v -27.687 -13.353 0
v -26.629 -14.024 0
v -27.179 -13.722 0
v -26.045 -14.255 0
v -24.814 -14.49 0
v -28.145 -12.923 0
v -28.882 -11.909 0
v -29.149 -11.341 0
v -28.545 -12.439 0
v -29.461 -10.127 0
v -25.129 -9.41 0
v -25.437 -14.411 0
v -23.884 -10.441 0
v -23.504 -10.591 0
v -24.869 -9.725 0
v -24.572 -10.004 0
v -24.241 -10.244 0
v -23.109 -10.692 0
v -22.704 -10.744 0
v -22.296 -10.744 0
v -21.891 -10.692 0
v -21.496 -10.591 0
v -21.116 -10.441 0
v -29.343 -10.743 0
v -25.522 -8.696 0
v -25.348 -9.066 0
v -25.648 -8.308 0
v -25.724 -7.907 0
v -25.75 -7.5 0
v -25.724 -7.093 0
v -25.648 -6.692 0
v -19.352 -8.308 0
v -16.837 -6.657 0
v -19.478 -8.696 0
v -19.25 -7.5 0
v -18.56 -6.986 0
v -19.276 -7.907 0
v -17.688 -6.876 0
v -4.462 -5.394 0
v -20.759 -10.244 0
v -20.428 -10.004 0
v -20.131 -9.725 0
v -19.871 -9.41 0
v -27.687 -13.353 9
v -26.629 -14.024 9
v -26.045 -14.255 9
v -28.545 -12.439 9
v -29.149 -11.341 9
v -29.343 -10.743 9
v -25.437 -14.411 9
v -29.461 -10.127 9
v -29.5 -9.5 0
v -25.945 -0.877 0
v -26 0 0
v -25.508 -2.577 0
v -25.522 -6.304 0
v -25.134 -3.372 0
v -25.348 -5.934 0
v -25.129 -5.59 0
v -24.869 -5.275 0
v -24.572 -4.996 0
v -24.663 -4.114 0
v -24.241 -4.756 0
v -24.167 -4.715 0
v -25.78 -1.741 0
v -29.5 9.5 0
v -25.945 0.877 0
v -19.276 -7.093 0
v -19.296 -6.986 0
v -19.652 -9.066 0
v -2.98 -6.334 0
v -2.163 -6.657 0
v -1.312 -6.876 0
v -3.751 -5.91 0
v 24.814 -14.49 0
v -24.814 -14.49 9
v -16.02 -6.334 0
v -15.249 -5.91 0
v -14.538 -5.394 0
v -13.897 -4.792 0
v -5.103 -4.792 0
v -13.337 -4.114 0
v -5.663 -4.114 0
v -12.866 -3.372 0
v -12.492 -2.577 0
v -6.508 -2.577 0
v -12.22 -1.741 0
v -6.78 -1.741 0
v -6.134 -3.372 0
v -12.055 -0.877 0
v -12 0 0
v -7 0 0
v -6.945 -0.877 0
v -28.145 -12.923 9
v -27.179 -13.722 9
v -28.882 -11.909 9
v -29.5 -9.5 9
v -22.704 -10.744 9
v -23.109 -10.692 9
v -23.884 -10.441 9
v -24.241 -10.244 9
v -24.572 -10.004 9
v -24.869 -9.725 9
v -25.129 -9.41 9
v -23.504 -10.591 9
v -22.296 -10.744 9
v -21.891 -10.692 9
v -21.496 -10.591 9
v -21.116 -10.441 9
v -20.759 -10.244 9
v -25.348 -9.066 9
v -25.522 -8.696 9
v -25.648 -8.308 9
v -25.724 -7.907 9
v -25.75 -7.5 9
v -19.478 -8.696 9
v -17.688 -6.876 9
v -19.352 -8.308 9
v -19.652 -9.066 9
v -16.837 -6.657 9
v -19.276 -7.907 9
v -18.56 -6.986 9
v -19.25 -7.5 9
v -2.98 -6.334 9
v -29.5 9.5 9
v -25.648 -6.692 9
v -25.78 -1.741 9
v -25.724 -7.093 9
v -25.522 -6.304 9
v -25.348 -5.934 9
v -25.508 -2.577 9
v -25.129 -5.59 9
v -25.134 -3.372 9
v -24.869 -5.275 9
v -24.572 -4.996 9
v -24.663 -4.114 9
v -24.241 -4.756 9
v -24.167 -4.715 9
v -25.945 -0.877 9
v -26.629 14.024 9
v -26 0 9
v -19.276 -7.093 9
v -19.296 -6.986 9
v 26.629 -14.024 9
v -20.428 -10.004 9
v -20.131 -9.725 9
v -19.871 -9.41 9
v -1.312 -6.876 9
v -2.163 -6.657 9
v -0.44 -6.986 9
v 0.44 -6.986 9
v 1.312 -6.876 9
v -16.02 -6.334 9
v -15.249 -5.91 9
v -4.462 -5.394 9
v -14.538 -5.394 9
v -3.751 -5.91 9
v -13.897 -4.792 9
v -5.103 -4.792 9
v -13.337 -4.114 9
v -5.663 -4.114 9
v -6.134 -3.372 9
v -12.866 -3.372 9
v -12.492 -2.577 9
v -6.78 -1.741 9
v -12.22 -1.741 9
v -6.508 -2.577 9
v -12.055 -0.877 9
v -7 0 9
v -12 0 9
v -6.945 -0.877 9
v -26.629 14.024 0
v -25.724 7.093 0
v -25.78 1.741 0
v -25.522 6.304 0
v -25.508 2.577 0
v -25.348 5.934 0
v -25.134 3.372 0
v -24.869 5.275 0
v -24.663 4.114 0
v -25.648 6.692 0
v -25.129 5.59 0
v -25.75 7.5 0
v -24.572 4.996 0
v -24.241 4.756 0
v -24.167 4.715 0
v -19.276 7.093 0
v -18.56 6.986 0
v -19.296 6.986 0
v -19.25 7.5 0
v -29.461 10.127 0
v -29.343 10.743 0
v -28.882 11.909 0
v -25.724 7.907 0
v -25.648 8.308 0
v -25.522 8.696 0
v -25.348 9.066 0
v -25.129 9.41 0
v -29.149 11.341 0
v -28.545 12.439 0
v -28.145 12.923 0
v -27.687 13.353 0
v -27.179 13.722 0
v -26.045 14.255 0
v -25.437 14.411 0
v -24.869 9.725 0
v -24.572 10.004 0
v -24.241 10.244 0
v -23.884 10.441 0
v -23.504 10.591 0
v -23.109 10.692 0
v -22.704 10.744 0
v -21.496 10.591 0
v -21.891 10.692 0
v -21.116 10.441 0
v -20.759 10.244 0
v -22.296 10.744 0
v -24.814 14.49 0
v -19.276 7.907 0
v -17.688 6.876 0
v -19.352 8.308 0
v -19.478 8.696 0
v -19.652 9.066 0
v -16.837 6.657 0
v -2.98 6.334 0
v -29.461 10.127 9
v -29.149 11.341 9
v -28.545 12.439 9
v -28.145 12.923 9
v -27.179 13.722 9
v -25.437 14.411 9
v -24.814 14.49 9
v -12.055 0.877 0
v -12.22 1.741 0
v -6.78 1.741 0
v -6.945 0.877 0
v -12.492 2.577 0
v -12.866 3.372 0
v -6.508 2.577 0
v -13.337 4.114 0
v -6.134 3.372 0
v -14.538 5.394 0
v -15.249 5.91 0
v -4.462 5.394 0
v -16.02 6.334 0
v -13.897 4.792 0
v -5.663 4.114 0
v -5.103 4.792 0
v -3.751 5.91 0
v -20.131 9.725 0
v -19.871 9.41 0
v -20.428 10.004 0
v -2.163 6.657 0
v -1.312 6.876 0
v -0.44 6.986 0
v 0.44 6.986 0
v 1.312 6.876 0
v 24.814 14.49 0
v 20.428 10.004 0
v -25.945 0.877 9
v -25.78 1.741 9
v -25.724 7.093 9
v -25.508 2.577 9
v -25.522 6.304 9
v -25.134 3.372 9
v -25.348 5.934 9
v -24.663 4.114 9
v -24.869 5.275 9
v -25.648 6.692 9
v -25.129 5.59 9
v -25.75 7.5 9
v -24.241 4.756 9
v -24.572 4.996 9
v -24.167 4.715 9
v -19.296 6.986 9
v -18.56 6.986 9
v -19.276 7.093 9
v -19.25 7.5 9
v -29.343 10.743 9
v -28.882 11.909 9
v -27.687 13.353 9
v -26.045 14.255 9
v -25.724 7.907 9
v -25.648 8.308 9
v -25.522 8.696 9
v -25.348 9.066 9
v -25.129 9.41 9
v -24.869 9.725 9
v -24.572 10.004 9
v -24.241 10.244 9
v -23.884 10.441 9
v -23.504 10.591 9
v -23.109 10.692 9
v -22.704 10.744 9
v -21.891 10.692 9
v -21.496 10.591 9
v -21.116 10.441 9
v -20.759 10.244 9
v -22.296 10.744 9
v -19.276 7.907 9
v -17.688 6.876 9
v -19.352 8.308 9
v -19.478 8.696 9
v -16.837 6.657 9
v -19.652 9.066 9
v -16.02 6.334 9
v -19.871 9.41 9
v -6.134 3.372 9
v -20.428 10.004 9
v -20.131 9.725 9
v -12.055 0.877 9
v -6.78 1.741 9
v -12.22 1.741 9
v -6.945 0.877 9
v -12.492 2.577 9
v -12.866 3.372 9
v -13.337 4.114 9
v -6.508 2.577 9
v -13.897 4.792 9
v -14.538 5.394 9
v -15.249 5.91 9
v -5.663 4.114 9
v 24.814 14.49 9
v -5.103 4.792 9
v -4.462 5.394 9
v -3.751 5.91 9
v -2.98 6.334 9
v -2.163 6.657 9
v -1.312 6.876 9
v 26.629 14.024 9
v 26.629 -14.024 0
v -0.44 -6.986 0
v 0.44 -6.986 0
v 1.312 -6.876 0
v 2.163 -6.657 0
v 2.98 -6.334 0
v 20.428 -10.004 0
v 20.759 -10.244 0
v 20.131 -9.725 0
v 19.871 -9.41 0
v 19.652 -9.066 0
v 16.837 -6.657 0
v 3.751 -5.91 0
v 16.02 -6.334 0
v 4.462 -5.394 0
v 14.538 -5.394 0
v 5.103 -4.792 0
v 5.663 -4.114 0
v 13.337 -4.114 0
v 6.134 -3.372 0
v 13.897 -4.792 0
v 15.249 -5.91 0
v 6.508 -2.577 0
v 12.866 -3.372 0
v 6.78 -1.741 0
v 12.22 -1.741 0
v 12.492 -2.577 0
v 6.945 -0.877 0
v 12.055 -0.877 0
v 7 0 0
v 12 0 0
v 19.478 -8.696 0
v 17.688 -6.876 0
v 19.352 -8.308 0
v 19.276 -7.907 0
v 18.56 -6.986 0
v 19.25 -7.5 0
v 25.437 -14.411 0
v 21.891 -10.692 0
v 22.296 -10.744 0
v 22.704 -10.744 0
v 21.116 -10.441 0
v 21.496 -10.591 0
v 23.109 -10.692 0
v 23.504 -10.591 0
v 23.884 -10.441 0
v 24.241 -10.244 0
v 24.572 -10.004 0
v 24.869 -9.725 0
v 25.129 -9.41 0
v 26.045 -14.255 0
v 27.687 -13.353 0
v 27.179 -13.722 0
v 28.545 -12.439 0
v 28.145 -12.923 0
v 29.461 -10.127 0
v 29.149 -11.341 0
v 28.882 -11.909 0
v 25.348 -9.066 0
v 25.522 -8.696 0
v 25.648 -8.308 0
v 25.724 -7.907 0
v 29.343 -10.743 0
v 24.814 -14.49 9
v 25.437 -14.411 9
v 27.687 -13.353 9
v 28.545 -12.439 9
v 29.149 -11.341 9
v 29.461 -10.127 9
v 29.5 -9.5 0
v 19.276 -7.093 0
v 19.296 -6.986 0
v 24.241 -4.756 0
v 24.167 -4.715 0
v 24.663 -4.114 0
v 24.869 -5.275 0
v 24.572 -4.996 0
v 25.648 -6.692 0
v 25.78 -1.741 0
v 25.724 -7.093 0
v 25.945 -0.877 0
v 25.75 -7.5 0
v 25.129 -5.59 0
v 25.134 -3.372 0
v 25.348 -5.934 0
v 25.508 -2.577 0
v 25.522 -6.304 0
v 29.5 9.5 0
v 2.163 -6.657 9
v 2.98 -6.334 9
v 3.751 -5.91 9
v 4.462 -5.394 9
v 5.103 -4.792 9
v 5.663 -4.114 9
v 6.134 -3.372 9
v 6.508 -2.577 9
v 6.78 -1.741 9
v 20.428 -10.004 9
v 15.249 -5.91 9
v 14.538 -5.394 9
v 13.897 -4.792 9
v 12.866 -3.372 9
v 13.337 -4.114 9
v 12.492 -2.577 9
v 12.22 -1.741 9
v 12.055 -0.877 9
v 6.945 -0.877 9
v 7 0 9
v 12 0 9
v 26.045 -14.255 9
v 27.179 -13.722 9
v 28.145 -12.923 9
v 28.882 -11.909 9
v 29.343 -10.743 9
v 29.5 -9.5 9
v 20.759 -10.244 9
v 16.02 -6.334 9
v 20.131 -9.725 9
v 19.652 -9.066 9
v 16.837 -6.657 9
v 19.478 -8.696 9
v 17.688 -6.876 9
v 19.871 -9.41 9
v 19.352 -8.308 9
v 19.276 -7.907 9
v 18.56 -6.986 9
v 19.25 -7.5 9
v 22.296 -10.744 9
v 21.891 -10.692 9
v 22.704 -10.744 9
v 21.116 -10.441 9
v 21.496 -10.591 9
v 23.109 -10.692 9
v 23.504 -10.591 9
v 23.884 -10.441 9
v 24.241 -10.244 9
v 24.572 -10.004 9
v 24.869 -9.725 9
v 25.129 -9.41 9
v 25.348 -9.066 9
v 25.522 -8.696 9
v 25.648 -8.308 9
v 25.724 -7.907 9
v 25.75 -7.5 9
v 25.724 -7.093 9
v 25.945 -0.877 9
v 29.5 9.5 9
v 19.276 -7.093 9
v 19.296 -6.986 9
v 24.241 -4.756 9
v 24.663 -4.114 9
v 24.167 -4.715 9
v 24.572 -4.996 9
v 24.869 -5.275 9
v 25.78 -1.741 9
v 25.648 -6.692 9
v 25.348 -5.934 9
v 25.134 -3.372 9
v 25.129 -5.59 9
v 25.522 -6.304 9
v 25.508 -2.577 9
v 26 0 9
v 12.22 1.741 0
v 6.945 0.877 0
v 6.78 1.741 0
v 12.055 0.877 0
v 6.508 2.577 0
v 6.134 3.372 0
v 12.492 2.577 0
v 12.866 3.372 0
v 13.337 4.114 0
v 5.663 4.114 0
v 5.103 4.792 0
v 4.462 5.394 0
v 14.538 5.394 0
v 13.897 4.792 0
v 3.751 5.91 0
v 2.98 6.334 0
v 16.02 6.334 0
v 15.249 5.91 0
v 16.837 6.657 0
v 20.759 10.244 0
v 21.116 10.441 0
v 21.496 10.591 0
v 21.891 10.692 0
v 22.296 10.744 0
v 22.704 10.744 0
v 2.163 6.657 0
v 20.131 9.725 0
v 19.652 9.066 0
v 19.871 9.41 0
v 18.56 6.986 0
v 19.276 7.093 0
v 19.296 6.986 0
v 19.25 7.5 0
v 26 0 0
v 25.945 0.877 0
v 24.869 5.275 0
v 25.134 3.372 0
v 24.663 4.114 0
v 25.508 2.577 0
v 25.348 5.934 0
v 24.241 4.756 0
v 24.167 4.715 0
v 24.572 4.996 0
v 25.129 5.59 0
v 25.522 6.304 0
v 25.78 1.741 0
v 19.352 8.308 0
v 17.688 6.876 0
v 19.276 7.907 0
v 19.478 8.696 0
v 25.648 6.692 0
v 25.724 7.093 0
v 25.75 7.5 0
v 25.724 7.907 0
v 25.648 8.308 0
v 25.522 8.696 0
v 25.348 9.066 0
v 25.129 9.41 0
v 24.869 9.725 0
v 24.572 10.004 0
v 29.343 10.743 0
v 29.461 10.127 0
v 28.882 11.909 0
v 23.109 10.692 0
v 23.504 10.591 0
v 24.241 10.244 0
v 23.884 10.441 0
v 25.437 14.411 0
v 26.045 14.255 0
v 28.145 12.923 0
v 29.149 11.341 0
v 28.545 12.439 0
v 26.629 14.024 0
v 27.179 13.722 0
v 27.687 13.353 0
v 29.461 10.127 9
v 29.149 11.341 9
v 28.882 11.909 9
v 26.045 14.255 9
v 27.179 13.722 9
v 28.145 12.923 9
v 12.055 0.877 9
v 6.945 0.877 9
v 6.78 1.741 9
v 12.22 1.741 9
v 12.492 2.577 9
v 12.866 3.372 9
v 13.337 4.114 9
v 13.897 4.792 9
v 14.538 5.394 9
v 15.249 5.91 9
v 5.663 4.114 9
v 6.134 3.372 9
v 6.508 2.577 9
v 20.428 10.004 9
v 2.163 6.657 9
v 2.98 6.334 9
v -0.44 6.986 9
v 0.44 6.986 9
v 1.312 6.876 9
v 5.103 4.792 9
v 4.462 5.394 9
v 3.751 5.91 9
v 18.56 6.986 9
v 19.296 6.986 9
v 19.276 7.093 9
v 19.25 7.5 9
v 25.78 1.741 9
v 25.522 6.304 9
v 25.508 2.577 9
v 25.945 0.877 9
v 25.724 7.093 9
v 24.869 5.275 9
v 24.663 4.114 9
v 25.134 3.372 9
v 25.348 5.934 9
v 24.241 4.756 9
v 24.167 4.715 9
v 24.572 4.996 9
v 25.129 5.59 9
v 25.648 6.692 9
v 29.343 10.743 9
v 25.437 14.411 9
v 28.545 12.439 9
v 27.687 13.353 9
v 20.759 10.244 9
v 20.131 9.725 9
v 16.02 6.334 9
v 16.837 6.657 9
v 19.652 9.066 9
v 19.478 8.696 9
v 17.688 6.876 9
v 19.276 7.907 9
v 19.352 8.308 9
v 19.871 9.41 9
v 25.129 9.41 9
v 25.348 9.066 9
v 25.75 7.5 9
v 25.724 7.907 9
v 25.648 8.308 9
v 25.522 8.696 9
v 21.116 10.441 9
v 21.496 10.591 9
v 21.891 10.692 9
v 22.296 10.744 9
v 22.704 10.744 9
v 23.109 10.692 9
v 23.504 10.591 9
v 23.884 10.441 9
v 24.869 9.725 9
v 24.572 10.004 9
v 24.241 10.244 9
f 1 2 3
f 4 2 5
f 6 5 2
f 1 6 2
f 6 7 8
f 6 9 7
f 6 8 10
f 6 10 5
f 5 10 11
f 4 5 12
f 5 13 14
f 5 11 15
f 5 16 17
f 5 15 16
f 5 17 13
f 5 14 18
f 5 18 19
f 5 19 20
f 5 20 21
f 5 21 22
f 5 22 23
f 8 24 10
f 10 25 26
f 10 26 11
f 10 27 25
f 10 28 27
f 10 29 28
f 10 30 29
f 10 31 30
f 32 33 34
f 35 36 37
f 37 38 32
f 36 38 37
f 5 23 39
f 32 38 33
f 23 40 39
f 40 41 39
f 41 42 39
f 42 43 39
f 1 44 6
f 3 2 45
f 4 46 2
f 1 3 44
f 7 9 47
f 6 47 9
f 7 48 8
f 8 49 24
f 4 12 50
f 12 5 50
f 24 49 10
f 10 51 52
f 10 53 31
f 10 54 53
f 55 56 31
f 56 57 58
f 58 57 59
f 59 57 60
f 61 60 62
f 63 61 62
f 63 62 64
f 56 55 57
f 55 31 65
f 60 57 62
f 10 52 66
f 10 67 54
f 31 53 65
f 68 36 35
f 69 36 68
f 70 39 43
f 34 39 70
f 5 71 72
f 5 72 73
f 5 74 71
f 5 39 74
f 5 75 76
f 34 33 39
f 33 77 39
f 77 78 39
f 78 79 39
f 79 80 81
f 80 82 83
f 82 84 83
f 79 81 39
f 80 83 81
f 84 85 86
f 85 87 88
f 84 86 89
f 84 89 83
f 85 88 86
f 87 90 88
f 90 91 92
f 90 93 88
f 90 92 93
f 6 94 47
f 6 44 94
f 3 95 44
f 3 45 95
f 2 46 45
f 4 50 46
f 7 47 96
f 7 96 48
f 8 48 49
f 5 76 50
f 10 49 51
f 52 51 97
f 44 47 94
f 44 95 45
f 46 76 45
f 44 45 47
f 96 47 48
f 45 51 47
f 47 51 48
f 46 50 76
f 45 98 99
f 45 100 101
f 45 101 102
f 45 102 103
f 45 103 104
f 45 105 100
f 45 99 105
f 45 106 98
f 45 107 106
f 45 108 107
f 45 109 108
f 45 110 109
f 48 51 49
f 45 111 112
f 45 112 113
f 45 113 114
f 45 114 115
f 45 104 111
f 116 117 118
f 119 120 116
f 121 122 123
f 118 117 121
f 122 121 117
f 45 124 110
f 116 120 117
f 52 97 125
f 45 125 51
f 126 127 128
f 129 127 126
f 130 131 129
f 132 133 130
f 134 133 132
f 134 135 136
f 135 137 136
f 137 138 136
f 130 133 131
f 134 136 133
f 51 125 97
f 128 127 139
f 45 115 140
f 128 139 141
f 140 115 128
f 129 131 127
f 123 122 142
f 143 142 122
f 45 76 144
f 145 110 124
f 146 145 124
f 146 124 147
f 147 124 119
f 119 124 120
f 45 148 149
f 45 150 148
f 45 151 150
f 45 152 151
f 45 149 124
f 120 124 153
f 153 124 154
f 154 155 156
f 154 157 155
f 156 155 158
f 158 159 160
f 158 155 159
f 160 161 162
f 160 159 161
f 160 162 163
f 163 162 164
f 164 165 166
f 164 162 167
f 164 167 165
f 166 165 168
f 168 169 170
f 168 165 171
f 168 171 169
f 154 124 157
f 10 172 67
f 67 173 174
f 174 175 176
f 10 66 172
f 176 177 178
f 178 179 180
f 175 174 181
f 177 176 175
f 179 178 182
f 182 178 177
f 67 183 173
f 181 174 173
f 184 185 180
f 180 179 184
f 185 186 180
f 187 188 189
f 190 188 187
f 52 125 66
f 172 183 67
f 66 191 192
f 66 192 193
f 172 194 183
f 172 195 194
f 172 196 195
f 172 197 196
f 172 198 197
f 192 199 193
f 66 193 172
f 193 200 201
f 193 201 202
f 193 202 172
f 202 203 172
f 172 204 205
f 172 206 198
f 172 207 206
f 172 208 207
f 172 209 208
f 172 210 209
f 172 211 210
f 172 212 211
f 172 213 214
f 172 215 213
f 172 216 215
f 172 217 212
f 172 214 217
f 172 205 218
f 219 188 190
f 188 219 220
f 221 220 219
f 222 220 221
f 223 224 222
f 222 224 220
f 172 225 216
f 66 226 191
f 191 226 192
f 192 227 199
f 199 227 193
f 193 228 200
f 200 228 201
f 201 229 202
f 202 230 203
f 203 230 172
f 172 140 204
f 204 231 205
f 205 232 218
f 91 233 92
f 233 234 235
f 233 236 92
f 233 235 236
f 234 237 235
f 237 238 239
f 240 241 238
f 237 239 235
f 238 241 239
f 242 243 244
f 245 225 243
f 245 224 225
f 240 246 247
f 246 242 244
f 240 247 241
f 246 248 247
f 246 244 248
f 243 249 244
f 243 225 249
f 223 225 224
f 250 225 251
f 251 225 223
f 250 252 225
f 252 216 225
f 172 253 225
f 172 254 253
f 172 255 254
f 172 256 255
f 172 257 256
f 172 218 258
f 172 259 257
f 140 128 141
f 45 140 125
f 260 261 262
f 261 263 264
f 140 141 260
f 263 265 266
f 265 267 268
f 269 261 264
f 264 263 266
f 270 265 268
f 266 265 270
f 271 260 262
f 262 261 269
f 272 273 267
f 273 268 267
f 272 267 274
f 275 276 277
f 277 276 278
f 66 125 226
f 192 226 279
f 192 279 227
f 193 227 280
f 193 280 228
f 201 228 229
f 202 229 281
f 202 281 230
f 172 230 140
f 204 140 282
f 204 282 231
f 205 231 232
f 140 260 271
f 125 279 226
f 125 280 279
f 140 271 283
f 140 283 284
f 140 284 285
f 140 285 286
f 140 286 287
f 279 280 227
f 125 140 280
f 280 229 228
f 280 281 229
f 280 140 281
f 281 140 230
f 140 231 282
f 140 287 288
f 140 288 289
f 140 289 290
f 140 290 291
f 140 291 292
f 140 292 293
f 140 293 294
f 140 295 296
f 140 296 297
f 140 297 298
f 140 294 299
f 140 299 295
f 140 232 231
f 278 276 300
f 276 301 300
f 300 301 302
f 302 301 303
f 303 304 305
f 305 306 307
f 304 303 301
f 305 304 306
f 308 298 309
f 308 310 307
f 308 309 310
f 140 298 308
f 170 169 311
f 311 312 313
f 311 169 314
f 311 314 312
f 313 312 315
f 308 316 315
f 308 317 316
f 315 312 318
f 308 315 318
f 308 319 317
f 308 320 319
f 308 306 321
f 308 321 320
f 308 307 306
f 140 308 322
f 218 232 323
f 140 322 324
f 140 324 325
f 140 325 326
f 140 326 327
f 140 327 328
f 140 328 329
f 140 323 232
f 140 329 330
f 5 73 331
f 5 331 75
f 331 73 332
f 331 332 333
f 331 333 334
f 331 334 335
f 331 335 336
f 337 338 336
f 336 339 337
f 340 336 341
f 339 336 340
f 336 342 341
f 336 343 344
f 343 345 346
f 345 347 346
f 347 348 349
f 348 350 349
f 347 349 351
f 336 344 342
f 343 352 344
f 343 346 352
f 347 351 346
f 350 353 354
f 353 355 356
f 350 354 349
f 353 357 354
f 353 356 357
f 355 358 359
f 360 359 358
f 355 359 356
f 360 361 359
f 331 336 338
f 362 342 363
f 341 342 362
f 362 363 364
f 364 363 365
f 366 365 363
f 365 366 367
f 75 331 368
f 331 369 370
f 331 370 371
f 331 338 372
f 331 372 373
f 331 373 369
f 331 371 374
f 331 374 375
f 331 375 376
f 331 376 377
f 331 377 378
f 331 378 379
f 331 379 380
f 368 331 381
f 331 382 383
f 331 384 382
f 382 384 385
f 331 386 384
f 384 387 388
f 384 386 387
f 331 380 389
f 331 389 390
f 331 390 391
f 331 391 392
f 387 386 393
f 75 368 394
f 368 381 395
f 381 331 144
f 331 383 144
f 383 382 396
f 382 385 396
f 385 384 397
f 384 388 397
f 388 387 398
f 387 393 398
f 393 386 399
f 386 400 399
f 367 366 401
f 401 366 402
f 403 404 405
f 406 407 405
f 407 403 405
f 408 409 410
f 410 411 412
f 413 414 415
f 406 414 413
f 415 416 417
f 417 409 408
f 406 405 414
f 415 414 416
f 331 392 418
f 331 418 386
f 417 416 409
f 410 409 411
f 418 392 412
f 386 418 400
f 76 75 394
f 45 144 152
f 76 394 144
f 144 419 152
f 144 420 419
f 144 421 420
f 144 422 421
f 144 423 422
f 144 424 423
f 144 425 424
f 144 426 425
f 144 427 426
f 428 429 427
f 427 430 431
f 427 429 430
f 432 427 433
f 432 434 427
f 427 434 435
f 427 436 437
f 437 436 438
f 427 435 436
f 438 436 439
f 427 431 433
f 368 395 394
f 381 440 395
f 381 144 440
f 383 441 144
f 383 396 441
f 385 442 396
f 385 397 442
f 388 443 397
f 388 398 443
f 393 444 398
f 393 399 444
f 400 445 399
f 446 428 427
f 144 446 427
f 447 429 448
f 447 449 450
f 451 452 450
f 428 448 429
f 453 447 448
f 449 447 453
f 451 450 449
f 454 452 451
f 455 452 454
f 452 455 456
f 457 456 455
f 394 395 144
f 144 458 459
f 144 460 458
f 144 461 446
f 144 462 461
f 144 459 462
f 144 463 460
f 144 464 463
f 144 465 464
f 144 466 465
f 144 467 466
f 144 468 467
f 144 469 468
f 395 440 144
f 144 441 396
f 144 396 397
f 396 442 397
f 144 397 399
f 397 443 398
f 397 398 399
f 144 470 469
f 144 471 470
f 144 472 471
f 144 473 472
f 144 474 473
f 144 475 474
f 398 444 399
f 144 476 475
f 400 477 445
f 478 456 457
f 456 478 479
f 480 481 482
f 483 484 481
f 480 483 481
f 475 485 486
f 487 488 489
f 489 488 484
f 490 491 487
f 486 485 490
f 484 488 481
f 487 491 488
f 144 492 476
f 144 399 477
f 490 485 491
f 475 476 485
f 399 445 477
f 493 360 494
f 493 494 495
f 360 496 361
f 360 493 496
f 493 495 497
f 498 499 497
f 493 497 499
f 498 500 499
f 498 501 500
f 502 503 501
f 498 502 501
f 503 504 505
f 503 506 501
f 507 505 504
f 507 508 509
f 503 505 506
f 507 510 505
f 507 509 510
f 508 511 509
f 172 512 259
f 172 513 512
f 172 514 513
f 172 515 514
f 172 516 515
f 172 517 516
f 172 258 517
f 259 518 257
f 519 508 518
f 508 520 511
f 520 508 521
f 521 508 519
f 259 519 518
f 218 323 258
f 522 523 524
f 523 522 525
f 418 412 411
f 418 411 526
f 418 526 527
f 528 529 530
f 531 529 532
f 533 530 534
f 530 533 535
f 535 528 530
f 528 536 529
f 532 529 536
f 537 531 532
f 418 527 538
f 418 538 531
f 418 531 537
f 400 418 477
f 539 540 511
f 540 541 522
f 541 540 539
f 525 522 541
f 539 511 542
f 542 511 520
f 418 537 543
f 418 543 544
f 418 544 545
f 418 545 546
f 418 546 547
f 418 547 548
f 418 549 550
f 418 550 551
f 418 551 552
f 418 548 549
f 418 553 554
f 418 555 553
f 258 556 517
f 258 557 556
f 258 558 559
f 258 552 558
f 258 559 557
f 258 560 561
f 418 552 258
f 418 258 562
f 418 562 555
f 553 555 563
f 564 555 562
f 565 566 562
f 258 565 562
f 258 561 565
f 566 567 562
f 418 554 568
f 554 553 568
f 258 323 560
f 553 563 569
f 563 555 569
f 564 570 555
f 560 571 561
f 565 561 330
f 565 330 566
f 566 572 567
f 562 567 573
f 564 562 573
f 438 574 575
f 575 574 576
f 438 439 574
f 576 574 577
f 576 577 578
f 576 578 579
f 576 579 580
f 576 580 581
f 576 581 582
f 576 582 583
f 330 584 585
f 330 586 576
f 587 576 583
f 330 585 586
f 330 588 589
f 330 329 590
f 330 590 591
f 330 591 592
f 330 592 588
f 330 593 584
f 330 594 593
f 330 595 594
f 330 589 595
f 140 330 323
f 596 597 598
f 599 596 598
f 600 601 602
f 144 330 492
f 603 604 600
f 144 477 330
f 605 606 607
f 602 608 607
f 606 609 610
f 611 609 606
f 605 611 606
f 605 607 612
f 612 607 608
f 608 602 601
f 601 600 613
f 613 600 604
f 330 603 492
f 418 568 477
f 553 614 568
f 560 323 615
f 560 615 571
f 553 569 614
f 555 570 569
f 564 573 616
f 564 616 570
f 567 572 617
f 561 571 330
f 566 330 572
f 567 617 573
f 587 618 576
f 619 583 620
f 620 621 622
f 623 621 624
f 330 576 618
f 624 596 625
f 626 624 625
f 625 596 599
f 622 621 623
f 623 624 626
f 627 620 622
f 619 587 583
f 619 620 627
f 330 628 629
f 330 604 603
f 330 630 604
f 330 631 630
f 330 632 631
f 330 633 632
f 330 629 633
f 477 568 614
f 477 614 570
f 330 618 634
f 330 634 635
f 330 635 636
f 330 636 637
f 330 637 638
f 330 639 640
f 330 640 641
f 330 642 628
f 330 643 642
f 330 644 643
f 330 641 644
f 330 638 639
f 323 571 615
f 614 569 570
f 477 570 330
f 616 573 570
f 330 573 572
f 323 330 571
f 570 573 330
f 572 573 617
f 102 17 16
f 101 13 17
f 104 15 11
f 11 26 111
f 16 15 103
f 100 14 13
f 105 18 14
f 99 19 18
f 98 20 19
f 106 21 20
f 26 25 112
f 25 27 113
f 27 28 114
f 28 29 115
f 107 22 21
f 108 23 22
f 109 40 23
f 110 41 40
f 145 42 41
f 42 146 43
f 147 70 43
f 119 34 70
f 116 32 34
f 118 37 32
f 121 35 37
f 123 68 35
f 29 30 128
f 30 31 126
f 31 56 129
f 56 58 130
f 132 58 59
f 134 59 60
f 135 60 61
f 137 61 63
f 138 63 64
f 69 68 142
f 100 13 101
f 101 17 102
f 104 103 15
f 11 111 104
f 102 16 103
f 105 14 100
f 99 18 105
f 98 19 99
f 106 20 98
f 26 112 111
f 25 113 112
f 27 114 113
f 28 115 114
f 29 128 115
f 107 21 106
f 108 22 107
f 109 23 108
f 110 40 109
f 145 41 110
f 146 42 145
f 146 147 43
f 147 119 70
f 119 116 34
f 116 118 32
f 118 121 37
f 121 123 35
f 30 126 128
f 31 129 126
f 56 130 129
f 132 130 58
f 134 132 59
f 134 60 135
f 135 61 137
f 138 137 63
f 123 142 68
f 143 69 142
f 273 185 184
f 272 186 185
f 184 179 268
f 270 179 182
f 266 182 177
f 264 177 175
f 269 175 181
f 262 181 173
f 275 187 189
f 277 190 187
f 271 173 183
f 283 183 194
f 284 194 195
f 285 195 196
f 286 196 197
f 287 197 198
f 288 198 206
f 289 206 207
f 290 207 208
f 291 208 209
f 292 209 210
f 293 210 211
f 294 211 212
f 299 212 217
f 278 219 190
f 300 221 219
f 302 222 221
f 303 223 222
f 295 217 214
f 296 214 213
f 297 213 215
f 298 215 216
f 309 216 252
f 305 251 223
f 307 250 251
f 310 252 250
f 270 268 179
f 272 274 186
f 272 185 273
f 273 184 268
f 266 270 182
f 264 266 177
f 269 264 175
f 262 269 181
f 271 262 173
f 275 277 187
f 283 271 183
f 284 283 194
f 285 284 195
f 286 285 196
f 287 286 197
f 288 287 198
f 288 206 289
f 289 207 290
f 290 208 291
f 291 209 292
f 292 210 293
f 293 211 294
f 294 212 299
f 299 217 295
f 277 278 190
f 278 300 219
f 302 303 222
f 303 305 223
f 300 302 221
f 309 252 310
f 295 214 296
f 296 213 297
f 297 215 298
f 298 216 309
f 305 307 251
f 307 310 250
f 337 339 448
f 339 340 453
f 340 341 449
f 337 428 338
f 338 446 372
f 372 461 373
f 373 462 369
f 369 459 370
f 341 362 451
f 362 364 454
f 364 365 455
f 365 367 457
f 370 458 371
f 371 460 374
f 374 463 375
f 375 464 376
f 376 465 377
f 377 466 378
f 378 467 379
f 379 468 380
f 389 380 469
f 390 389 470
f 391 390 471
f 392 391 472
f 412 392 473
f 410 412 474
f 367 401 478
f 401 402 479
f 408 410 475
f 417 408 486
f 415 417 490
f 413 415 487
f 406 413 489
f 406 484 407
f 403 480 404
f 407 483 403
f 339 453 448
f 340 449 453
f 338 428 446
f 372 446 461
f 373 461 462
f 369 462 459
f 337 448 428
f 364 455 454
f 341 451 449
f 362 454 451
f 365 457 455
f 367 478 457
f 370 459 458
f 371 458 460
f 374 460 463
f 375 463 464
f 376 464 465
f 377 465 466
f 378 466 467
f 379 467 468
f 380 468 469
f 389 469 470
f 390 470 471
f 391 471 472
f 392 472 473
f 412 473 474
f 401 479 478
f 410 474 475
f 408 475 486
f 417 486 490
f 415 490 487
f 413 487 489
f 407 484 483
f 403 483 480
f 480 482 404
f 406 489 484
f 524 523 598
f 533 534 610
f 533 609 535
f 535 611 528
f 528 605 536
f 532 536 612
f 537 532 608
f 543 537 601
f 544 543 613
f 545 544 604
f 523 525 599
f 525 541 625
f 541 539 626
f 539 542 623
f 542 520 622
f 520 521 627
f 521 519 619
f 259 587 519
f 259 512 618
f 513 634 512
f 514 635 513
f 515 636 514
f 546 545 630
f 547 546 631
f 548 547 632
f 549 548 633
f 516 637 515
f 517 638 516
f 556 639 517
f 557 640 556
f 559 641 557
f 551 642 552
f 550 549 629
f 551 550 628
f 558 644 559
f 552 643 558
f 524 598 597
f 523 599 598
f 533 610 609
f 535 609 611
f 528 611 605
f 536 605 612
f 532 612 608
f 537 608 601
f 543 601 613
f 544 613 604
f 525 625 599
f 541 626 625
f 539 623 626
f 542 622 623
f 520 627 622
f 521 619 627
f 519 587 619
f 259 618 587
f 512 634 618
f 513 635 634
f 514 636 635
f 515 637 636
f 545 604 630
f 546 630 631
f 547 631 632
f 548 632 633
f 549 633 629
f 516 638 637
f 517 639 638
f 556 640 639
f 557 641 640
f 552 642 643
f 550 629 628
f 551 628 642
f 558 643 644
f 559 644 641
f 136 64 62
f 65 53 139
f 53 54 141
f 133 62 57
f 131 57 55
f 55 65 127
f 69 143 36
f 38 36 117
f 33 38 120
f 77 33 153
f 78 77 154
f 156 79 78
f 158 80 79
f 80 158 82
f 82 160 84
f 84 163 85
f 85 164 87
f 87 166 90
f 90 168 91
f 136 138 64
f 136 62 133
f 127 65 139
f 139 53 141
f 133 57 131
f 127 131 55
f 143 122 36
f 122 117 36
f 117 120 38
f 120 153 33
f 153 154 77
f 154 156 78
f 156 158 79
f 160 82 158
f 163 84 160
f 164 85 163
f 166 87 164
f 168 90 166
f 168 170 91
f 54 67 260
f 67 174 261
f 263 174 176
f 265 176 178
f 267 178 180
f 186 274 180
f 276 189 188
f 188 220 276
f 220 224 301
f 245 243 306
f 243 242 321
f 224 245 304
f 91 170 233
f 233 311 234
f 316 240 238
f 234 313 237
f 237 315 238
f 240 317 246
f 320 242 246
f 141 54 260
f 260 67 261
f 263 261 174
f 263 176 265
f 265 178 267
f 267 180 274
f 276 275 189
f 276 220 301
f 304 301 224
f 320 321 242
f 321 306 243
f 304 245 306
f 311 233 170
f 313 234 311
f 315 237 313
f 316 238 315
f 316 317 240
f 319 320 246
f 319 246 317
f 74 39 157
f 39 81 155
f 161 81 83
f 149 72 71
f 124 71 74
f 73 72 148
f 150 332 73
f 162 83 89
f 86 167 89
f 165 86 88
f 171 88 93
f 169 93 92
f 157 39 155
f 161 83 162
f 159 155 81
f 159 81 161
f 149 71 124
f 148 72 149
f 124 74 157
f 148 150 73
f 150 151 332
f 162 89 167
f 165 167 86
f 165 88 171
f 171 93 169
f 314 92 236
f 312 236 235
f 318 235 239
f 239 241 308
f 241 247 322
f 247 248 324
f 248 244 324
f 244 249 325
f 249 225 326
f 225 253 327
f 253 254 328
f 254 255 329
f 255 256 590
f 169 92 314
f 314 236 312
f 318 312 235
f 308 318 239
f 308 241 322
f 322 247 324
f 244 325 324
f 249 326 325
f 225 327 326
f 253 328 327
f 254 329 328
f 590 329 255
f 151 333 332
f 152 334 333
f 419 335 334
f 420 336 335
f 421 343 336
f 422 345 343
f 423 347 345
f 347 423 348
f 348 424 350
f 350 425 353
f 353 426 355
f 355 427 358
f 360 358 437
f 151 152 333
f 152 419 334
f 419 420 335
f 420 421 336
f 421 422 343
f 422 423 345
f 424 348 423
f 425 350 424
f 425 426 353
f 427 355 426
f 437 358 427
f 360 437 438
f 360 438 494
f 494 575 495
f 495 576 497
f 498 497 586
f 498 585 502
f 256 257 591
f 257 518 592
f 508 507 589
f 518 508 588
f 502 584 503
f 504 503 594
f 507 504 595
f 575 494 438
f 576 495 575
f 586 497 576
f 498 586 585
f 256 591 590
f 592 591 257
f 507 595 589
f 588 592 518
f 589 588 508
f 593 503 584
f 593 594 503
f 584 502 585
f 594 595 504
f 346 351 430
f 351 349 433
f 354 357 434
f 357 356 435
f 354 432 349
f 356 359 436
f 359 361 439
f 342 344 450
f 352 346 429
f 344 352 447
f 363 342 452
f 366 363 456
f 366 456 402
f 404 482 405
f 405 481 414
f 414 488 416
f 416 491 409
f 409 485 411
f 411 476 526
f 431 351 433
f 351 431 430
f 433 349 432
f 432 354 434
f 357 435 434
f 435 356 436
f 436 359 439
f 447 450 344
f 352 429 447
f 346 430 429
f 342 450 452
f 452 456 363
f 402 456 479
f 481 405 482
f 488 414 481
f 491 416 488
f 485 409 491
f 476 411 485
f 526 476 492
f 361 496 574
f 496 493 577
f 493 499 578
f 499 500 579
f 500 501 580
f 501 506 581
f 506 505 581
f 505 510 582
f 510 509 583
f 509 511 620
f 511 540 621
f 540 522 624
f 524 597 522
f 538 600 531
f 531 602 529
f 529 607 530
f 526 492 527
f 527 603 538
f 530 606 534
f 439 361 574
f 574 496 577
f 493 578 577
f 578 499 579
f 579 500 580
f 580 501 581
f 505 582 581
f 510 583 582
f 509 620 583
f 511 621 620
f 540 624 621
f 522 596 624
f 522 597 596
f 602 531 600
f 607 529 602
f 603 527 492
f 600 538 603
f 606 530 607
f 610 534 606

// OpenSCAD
$fn = 50;

difference() {
	union() {
		hull() {
			translate(v = [-24.5, 9.5, 0]) {
				cylinder(h = 9, r = 5);
			}
			translate(v = [24.5, 9.5, 0]) {
				cylinder(h = 9, r = 5);
			}
			translate(v = [-24.5, -9.5, 0]) {
				cylinder(h = 9, r = 5);
			}
			translate(v = [24.5, -9.5, 0]) {
				cylinder(h = 9, r = 5);
			}
		}
	}
	union() {
		translate(v = [-22.5, -7.5, -100.0]) {
			cylinder(h = 200, r = 3.25);
		}
		translate(v = [-22.5, 7.5, -100.0]) {
			cylinder(h = 200, r = 3.25);
		}
		translate(v = [22.5, -7.5, -100.0]) {
			cylinder(h = 200, r = 3.25);
		}
		translate(v = [22.5, 7.5, -100.0]) {
			cylinder(h = 200, r = 3.25);
		}
		translate(v = [-22.5, -7.5, -100.0]) {
			cylinder(h = 200, r = 1.8);
		}
		translate(v = [-22.5, 7.5, -100.0]) {
			cylinder(h = 200, r = 1.8);
		}
		translate(v = [22.5, -7.5, -100.0]) {
			cylinder(h = 200, r = 1.8);
		}
		translate(v = [22.5, 7.5, -100.0]) {
			cylinder(h = 200, r = 1.8);
		}
		translate(v = [-19.0, 0, 0.0]) {
			cylinder(h = 9, r = 7.0);
		}
		cylinder(h = 9, r = 7.0);
		translate(v = [19.0, 0, 0.0]) {
			cylinder(h = 9, r = 7.0);
		}
	}
}
